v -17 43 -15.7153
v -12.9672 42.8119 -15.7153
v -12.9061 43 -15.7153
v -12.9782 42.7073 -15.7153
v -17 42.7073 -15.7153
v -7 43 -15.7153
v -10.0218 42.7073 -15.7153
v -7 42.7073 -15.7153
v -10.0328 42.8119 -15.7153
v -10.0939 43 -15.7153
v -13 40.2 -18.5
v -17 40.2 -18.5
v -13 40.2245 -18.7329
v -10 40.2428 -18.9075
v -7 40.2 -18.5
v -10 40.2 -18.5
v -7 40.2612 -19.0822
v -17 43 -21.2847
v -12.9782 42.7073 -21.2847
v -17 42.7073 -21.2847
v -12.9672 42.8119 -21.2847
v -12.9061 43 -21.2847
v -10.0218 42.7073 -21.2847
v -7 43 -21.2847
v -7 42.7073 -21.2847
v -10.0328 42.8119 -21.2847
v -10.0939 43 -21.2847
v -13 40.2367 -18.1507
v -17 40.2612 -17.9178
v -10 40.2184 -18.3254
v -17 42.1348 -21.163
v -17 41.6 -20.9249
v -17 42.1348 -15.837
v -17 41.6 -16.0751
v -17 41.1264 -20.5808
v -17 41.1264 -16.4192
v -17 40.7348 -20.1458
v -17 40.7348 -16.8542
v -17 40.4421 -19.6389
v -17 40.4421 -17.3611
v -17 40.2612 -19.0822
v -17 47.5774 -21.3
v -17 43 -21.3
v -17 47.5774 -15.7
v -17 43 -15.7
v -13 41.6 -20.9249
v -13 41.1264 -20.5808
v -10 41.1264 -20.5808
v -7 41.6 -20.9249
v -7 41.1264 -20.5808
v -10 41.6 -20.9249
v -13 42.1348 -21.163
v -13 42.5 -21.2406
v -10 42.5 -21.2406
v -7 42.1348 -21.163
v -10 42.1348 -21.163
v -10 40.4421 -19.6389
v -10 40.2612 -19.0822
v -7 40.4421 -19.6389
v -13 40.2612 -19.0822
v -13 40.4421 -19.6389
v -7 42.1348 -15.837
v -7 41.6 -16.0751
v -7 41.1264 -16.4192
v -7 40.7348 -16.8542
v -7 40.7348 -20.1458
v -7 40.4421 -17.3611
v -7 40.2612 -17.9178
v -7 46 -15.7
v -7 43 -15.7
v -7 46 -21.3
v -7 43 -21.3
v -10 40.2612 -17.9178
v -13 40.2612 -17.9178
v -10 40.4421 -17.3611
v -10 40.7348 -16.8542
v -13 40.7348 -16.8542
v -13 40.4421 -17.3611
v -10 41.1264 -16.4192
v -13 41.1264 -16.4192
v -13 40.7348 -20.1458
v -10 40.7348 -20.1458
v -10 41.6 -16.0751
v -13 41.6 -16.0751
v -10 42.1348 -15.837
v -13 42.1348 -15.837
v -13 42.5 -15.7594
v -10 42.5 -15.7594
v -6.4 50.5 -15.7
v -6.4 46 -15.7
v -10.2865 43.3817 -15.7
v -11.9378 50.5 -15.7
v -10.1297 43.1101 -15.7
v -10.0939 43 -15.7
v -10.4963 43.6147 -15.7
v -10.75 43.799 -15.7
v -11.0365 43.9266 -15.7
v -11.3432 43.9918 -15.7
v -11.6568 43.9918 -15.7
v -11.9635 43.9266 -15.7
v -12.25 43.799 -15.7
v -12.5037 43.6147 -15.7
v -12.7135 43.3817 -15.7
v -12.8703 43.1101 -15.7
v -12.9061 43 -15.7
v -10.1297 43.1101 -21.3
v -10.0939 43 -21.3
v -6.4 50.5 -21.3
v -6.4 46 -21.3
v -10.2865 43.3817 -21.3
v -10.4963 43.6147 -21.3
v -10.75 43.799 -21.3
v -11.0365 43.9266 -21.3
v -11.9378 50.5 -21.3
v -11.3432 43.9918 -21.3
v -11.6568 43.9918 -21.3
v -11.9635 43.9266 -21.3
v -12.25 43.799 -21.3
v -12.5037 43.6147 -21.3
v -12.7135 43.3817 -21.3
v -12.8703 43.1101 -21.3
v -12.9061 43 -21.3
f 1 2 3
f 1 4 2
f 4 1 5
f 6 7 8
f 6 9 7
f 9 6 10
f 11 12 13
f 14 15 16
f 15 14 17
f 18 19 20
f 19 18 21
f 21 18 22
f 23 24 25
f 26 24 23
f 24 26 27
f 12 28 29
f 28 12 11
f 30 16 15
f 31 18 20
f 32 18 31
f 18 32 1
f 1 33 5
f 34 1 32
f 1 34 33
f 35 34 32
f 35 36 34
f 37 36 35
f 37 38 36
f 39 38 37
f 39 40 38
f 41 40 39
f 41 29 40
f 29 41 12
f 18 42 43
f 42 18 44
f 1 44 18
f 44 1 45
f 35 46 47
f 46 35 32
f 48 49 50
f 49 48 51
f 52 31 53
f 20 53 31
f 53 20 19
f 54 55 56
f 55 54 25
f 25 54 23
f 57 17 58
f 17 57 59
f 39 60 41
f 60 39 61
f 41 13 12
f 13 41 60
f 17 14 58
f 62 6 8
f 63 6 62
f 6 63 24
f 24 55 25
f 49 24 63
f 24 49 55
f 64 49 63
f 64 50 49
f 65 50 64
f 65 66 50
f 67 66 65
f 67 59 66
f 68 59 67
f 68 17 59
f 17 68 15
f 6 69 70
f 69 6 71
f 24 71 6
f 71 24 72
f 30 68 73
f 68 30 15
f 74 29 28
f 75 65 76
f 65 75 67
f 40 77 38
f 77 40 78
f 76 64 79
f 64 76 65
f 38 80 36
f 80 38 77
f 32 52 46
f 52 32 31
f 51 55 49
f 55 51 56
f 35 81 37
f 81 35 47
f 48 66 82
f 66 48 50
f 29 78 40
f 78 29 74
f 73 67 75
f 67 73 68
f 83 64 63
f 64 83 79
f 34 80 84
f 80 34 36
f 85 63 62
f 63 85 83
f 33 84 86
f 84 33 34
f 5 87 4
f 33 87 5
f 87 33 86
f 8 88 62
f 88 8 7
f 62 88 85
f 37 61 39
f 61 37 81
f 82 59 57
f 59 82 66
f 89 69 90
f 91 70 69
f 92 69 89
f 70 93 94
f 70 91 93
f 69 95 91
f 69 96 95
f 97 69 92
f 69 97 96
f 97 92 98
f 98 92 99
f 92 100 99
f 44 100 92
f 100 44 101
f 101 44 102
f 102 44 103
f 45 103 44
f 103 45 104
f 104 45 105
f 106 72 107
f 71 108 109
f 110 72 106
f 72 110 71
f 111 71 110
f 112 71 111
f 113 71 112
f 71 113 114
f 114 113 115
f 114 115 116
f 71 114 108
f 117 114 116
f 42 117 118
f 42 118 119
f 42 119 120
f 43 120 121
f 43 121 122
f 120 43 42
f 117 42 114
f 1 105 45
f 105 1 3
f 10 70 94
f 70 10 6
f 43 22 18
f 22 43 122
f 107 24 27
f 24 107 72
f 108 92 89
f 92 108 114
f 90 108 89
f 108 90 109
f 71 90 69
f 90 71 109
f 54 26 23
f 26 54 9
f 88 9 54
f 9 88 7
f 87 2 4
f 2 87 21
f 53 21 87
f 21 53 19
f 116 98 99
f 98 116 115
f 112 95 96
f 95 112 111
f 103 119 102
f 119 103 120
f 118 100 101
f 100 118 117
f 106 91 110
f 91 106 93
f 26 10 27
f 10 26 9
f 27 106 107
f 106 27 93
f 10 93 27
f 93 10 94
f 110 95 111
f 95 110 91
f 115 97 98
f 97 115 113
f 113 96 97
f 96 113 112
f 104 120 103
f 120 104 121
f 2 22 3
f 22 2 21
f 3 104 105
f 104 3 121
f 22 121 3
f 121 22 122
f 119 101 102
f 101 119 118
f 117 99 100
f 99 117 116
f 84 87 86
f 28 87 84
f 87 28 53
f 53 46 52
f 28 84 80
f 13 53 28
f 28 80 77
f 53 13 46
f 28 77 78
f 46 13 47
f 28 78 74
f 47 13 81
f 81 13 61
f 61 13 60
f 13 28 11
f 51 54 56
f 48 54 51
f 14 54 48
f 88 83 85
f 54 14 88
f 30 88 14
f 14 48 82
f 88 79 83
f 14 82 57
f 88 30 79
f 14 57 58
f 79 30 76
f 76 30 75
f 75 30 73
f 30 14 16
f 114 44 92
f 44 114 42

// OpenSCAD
// PRUSA iteration4
// Extruder idler plug
// GNU GPL v3
// Josef Průša <iam@josefprusa.cz> and contributors
// http://www.reprap.org/wiki/Prusa_Mendel
// http://prusamendel.org

module plug()
{
    difference()
        {
            union()
            {
            // Base shape    
            translate([-17,43,-18.5])  rotate([90,0,90]) cylinder( h=10, r=2.8, $fn=30 ); 
            translate([-17,43,-21.3]) cube([10,4+3.5,5.6]);
            translate([-17,43+3,-21.3]) cube([10.6,4.5,5.6]);
            }
        
            // Motor screw slot
            translate([-11.5,42.5,-32])  cylinder( h=30, r=1.5, $fn=30 ); 
            translate([-11.5-1.5,42.5-5,-25])  cube([3,5,10]); 
            
            // Pretty corner
            translate([-18,47,-32]) rotate([0,0,30]) cube([15,10,30]);
        }
}

rotate([0,0,0])
{ 
    plug();
}
